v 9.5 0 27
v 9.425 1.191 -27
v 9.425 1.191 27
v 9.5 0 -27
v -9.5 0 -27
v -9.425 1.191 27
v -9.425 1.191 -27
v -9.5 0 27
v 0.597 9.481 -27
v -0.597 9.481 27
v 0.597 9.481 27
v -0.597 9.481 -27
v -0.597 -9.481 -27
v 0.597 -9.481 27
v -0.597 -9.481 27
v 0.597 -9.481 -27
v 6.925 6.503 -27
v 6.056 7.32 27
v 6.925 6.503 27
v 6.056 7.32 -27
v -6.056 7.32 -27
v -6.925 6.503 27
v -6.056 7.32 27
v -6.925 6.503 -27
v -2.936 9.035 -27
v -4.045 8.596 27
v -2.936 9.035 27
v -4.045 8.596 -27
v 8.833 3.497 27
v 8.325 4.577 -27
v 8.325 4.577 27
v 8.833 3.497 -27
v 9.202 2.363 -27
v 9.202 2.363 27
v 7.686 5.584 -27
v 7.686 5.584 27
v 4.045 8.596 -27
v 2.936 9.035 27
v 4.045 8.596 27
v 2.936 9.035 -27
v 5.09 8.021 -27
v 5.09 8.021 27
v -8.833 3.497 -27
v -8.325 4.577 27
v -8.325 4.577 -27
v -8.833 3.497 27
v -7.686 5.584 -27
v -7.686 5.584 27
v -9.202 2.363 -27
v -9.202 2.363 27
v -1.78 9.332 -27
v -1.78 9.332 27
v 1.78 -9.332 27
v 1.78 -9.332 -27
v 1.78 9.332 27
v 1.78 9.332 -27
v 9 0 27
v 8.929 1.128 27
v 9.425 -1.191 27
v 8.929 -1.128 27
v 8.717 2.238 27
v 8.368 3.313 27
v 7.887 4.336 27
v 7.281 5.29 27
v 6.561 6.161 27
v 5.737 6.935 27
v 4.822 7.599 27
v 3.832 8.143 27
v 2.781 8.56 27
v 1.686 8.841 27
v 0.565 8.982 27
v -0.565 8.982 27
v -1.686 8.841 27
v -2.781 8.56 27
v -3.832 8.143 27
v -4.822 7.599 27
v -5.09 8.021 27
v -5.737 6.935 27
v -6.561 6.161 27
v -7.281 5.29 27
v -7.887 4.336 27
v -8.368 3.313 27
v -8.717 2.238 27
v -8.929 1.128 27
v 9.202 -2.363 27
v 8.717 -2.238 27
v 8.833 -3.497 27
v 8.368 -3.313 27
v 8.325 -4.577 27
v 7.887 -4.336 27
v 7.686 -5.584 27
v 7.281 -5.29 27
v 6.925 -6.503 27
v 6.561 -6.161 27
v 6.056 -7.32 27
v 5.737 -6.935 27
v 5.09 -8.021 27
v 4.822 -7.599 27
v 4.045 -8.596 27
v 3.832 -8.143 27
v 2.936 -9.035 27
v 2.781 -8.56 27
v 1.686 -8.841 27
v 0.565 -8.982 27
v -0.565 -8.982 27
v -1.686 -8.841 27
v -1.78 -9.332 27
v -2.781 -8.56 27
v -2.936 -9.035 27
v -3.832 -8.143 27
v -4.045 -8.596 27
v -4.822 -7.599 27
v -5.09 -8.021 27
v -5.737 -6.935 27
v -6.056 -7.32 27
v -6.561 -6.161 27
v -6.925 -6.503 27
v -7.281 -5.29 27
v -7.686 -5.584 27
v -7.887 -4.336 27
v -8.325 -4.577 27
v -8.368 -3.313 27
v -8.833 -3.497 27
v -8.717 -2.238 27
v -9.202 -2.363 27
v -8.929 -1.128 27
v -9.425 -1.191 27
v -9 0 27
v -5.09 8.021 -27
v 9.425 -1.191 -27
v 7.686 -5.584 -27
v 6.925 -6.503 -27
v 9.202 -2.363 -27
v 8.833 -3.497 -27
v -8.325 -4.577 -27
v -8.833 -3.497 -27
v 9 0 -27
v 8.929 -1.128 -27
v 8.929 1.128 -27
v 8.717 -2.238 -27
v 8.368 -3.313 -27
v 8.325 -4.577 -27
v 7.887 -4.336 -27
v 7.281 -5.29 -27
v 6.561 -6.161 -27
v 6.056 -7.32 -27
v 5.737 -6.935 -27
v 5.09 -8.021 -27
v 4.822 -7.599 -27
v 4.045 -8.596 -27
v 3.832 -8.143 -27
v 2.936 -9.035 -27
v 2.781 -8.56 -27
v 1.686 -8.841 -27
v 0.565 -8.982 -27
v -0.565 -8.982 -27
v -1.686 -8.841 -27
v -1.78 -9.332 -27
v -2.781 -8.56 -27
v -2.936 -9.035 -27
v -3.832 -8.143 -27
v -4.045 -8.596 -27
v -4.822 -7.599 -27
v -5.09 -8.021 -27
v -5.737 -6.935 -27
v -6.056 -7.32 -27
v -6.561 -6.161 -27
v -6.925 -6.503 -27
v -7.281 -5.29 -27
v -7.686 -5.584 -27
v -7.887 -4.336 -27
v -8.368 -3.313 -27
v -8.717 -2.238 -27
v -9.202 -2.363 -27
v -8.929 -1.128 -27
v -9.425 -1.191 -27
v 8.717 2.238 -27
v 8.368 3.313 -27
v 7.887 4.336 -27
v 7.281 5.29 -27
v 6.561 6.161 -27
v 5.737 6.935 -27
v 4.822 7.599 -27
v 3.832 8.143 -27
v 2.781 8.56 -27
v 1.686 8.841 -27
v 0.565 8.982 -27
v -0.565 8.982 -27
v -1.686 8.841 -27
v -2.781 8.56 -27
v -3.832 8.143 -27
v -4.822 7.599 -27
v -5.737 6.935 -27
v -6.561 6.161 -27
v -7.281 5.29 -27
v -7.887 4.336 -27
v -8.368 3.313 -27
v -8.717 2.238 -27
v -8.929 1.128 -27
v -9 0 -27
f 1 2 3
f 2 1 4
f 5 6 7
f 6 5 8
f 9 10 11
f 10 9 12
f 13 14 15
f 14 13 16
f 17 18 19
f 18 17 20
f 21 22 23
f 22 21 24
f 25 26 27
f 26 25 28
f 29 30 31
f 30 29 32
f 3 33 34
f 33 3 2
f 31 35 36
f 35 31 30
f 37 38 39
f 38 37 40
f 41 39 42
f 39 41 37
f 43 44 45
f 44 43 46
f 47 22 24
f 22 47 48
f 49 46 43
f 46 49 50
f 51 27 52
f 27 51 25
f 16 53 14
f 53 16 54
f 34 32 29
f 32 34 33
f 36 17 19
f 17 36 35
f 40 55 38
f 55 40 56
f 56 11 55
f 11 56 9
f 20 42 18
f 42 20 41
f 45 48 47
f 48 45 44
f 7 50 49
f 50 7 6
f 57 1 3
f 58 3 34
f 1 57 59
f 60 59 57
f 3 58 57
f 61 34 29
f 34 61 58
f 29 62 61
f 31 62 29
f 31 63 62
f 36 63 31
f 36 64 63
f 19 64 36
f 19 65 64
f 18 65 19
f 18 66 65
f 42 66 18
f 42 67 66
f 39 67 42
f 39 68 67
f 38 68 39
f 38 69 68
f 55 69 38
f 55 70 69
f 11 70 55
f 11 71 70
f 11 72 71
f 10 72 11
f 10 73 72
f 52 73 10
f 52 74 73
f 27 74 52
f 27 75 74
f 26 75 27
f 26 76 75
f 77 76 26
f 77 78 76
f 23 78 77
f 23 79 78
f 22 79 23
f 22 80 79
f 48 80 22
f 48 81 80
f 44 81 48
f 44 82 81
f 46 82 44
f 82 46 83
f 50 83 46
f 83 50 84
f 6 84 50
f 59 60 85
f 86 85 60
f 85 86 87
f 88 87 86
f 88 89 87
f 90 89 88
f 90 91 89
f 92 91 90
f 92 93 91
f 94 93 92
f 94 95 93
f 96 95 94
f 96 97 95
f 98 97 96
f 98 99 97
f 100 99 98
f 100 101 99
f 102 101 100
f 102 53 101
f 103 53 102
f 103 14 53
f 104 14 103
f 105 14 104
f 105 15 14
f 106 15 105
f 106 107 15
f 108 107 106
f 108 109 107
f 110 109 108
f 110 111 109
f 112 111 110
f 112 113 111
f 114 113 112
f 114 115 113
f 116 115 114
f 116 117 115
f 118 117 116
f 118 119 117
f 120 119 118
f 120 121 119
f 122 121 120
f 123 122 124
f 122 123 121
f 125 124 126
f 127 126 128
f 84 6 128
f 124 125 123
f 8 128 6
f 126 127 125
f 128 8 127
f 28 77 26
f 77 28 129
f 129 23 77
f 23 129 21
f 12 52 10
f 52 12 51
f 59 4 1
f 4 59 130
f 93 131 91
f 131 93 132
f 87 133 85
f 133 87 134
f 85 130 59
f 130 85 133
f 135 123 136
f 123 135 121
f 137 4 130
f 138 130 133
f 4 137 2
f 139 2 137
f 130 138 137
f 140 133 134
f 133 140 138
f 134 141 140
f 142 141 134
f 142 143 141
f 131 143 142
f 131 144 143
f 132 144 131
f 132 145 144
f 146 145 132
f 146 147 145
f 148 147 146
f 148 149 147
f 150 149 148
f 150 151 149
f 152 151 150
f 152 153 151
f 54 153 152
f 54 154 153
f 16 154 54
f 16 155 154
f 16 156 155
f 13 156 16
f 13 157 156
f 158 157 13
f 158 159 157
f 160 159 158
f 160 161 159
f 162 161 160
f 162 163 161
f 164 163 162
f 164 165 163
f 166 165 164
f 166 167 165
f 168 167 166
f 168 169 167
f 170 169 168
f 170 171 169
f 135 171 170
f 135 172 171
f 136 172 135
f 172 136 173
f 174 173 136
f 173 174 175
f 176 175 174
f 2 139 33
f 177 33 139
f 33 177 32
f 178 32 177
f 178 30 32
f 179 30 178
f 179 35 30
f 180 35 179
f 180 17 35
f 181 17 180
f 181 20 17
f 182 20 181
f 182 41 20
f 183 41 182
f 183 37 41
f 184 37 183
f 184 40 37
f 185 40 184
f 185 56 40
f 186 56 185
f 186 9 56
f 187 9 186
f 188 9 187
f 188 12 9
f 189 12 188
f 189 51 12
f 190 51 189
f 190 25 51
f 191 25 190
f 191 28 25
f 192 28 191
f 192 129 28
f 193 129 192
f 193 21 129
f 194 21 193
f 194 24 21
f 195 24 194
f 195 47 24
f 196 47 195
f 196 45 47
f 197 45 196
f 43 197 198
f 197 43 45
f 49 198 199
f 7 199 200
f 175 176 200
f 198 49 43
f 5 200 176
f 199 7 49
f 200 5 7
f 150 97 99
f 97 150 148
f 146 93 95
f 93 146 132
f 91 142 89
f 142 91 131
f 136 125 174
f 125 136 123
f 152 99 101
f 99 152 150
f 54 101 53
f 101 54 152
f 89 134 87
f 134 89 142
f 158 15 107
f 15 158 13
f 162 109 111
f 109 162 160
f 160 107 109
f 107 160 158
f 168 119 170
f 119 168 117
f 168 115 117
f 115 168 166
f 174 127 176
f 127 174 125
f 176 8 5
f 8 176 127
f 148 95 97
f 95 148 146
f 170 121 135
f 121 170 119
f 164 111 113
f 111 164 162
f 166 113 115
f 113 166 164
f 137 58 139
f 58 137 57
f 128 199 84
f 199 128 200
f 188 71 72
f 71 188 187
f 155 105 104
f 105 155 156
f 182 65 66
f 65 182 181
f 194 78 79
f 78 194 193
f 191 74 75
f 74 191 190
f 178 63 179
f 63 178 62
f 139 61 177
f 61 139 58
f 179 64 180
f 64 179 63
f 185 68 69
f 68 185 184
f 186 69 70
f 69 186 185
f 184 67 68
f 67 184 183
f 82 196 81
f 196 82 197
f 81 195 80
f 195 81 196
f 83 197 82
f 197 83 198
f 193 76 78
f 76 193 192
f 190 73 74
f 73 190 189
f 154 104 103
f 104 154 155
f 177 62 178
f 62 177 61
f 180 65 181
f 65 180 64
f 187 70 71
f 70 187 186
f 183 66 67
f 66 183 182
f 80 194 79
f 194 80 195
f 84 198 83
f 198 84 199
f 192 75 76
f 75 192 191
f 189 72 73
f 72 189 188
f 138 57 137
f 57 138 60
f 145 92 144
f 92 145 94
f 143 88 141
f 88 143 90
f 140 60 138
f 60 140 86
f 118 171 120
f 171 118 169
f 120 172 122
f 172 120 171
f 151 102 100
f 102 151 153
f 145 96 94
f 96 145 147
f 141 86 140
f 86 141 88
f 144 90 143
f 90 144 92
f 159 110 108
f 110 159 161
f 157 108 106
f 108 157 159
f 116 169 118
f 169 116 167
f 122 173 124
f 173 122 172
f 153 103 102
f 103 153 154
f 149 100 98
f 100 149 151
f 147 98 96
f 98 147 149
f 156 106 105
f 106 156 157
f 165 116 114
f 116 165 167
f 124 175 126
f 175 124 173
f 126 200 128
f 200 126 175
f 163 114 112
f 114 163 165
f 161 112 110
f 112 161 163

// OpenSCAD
$fn = 50;


difference() {
	union() {
		translate(v = [0, 0, -27.0000000000]) {
			cylinder(h = 54, r = 9.5000000000);
		}
	}
	union() {
		translate(v = [0, 0, -100.0000000000]) {
			cylinder(h = 200, r = 9);
		}
	}
}
